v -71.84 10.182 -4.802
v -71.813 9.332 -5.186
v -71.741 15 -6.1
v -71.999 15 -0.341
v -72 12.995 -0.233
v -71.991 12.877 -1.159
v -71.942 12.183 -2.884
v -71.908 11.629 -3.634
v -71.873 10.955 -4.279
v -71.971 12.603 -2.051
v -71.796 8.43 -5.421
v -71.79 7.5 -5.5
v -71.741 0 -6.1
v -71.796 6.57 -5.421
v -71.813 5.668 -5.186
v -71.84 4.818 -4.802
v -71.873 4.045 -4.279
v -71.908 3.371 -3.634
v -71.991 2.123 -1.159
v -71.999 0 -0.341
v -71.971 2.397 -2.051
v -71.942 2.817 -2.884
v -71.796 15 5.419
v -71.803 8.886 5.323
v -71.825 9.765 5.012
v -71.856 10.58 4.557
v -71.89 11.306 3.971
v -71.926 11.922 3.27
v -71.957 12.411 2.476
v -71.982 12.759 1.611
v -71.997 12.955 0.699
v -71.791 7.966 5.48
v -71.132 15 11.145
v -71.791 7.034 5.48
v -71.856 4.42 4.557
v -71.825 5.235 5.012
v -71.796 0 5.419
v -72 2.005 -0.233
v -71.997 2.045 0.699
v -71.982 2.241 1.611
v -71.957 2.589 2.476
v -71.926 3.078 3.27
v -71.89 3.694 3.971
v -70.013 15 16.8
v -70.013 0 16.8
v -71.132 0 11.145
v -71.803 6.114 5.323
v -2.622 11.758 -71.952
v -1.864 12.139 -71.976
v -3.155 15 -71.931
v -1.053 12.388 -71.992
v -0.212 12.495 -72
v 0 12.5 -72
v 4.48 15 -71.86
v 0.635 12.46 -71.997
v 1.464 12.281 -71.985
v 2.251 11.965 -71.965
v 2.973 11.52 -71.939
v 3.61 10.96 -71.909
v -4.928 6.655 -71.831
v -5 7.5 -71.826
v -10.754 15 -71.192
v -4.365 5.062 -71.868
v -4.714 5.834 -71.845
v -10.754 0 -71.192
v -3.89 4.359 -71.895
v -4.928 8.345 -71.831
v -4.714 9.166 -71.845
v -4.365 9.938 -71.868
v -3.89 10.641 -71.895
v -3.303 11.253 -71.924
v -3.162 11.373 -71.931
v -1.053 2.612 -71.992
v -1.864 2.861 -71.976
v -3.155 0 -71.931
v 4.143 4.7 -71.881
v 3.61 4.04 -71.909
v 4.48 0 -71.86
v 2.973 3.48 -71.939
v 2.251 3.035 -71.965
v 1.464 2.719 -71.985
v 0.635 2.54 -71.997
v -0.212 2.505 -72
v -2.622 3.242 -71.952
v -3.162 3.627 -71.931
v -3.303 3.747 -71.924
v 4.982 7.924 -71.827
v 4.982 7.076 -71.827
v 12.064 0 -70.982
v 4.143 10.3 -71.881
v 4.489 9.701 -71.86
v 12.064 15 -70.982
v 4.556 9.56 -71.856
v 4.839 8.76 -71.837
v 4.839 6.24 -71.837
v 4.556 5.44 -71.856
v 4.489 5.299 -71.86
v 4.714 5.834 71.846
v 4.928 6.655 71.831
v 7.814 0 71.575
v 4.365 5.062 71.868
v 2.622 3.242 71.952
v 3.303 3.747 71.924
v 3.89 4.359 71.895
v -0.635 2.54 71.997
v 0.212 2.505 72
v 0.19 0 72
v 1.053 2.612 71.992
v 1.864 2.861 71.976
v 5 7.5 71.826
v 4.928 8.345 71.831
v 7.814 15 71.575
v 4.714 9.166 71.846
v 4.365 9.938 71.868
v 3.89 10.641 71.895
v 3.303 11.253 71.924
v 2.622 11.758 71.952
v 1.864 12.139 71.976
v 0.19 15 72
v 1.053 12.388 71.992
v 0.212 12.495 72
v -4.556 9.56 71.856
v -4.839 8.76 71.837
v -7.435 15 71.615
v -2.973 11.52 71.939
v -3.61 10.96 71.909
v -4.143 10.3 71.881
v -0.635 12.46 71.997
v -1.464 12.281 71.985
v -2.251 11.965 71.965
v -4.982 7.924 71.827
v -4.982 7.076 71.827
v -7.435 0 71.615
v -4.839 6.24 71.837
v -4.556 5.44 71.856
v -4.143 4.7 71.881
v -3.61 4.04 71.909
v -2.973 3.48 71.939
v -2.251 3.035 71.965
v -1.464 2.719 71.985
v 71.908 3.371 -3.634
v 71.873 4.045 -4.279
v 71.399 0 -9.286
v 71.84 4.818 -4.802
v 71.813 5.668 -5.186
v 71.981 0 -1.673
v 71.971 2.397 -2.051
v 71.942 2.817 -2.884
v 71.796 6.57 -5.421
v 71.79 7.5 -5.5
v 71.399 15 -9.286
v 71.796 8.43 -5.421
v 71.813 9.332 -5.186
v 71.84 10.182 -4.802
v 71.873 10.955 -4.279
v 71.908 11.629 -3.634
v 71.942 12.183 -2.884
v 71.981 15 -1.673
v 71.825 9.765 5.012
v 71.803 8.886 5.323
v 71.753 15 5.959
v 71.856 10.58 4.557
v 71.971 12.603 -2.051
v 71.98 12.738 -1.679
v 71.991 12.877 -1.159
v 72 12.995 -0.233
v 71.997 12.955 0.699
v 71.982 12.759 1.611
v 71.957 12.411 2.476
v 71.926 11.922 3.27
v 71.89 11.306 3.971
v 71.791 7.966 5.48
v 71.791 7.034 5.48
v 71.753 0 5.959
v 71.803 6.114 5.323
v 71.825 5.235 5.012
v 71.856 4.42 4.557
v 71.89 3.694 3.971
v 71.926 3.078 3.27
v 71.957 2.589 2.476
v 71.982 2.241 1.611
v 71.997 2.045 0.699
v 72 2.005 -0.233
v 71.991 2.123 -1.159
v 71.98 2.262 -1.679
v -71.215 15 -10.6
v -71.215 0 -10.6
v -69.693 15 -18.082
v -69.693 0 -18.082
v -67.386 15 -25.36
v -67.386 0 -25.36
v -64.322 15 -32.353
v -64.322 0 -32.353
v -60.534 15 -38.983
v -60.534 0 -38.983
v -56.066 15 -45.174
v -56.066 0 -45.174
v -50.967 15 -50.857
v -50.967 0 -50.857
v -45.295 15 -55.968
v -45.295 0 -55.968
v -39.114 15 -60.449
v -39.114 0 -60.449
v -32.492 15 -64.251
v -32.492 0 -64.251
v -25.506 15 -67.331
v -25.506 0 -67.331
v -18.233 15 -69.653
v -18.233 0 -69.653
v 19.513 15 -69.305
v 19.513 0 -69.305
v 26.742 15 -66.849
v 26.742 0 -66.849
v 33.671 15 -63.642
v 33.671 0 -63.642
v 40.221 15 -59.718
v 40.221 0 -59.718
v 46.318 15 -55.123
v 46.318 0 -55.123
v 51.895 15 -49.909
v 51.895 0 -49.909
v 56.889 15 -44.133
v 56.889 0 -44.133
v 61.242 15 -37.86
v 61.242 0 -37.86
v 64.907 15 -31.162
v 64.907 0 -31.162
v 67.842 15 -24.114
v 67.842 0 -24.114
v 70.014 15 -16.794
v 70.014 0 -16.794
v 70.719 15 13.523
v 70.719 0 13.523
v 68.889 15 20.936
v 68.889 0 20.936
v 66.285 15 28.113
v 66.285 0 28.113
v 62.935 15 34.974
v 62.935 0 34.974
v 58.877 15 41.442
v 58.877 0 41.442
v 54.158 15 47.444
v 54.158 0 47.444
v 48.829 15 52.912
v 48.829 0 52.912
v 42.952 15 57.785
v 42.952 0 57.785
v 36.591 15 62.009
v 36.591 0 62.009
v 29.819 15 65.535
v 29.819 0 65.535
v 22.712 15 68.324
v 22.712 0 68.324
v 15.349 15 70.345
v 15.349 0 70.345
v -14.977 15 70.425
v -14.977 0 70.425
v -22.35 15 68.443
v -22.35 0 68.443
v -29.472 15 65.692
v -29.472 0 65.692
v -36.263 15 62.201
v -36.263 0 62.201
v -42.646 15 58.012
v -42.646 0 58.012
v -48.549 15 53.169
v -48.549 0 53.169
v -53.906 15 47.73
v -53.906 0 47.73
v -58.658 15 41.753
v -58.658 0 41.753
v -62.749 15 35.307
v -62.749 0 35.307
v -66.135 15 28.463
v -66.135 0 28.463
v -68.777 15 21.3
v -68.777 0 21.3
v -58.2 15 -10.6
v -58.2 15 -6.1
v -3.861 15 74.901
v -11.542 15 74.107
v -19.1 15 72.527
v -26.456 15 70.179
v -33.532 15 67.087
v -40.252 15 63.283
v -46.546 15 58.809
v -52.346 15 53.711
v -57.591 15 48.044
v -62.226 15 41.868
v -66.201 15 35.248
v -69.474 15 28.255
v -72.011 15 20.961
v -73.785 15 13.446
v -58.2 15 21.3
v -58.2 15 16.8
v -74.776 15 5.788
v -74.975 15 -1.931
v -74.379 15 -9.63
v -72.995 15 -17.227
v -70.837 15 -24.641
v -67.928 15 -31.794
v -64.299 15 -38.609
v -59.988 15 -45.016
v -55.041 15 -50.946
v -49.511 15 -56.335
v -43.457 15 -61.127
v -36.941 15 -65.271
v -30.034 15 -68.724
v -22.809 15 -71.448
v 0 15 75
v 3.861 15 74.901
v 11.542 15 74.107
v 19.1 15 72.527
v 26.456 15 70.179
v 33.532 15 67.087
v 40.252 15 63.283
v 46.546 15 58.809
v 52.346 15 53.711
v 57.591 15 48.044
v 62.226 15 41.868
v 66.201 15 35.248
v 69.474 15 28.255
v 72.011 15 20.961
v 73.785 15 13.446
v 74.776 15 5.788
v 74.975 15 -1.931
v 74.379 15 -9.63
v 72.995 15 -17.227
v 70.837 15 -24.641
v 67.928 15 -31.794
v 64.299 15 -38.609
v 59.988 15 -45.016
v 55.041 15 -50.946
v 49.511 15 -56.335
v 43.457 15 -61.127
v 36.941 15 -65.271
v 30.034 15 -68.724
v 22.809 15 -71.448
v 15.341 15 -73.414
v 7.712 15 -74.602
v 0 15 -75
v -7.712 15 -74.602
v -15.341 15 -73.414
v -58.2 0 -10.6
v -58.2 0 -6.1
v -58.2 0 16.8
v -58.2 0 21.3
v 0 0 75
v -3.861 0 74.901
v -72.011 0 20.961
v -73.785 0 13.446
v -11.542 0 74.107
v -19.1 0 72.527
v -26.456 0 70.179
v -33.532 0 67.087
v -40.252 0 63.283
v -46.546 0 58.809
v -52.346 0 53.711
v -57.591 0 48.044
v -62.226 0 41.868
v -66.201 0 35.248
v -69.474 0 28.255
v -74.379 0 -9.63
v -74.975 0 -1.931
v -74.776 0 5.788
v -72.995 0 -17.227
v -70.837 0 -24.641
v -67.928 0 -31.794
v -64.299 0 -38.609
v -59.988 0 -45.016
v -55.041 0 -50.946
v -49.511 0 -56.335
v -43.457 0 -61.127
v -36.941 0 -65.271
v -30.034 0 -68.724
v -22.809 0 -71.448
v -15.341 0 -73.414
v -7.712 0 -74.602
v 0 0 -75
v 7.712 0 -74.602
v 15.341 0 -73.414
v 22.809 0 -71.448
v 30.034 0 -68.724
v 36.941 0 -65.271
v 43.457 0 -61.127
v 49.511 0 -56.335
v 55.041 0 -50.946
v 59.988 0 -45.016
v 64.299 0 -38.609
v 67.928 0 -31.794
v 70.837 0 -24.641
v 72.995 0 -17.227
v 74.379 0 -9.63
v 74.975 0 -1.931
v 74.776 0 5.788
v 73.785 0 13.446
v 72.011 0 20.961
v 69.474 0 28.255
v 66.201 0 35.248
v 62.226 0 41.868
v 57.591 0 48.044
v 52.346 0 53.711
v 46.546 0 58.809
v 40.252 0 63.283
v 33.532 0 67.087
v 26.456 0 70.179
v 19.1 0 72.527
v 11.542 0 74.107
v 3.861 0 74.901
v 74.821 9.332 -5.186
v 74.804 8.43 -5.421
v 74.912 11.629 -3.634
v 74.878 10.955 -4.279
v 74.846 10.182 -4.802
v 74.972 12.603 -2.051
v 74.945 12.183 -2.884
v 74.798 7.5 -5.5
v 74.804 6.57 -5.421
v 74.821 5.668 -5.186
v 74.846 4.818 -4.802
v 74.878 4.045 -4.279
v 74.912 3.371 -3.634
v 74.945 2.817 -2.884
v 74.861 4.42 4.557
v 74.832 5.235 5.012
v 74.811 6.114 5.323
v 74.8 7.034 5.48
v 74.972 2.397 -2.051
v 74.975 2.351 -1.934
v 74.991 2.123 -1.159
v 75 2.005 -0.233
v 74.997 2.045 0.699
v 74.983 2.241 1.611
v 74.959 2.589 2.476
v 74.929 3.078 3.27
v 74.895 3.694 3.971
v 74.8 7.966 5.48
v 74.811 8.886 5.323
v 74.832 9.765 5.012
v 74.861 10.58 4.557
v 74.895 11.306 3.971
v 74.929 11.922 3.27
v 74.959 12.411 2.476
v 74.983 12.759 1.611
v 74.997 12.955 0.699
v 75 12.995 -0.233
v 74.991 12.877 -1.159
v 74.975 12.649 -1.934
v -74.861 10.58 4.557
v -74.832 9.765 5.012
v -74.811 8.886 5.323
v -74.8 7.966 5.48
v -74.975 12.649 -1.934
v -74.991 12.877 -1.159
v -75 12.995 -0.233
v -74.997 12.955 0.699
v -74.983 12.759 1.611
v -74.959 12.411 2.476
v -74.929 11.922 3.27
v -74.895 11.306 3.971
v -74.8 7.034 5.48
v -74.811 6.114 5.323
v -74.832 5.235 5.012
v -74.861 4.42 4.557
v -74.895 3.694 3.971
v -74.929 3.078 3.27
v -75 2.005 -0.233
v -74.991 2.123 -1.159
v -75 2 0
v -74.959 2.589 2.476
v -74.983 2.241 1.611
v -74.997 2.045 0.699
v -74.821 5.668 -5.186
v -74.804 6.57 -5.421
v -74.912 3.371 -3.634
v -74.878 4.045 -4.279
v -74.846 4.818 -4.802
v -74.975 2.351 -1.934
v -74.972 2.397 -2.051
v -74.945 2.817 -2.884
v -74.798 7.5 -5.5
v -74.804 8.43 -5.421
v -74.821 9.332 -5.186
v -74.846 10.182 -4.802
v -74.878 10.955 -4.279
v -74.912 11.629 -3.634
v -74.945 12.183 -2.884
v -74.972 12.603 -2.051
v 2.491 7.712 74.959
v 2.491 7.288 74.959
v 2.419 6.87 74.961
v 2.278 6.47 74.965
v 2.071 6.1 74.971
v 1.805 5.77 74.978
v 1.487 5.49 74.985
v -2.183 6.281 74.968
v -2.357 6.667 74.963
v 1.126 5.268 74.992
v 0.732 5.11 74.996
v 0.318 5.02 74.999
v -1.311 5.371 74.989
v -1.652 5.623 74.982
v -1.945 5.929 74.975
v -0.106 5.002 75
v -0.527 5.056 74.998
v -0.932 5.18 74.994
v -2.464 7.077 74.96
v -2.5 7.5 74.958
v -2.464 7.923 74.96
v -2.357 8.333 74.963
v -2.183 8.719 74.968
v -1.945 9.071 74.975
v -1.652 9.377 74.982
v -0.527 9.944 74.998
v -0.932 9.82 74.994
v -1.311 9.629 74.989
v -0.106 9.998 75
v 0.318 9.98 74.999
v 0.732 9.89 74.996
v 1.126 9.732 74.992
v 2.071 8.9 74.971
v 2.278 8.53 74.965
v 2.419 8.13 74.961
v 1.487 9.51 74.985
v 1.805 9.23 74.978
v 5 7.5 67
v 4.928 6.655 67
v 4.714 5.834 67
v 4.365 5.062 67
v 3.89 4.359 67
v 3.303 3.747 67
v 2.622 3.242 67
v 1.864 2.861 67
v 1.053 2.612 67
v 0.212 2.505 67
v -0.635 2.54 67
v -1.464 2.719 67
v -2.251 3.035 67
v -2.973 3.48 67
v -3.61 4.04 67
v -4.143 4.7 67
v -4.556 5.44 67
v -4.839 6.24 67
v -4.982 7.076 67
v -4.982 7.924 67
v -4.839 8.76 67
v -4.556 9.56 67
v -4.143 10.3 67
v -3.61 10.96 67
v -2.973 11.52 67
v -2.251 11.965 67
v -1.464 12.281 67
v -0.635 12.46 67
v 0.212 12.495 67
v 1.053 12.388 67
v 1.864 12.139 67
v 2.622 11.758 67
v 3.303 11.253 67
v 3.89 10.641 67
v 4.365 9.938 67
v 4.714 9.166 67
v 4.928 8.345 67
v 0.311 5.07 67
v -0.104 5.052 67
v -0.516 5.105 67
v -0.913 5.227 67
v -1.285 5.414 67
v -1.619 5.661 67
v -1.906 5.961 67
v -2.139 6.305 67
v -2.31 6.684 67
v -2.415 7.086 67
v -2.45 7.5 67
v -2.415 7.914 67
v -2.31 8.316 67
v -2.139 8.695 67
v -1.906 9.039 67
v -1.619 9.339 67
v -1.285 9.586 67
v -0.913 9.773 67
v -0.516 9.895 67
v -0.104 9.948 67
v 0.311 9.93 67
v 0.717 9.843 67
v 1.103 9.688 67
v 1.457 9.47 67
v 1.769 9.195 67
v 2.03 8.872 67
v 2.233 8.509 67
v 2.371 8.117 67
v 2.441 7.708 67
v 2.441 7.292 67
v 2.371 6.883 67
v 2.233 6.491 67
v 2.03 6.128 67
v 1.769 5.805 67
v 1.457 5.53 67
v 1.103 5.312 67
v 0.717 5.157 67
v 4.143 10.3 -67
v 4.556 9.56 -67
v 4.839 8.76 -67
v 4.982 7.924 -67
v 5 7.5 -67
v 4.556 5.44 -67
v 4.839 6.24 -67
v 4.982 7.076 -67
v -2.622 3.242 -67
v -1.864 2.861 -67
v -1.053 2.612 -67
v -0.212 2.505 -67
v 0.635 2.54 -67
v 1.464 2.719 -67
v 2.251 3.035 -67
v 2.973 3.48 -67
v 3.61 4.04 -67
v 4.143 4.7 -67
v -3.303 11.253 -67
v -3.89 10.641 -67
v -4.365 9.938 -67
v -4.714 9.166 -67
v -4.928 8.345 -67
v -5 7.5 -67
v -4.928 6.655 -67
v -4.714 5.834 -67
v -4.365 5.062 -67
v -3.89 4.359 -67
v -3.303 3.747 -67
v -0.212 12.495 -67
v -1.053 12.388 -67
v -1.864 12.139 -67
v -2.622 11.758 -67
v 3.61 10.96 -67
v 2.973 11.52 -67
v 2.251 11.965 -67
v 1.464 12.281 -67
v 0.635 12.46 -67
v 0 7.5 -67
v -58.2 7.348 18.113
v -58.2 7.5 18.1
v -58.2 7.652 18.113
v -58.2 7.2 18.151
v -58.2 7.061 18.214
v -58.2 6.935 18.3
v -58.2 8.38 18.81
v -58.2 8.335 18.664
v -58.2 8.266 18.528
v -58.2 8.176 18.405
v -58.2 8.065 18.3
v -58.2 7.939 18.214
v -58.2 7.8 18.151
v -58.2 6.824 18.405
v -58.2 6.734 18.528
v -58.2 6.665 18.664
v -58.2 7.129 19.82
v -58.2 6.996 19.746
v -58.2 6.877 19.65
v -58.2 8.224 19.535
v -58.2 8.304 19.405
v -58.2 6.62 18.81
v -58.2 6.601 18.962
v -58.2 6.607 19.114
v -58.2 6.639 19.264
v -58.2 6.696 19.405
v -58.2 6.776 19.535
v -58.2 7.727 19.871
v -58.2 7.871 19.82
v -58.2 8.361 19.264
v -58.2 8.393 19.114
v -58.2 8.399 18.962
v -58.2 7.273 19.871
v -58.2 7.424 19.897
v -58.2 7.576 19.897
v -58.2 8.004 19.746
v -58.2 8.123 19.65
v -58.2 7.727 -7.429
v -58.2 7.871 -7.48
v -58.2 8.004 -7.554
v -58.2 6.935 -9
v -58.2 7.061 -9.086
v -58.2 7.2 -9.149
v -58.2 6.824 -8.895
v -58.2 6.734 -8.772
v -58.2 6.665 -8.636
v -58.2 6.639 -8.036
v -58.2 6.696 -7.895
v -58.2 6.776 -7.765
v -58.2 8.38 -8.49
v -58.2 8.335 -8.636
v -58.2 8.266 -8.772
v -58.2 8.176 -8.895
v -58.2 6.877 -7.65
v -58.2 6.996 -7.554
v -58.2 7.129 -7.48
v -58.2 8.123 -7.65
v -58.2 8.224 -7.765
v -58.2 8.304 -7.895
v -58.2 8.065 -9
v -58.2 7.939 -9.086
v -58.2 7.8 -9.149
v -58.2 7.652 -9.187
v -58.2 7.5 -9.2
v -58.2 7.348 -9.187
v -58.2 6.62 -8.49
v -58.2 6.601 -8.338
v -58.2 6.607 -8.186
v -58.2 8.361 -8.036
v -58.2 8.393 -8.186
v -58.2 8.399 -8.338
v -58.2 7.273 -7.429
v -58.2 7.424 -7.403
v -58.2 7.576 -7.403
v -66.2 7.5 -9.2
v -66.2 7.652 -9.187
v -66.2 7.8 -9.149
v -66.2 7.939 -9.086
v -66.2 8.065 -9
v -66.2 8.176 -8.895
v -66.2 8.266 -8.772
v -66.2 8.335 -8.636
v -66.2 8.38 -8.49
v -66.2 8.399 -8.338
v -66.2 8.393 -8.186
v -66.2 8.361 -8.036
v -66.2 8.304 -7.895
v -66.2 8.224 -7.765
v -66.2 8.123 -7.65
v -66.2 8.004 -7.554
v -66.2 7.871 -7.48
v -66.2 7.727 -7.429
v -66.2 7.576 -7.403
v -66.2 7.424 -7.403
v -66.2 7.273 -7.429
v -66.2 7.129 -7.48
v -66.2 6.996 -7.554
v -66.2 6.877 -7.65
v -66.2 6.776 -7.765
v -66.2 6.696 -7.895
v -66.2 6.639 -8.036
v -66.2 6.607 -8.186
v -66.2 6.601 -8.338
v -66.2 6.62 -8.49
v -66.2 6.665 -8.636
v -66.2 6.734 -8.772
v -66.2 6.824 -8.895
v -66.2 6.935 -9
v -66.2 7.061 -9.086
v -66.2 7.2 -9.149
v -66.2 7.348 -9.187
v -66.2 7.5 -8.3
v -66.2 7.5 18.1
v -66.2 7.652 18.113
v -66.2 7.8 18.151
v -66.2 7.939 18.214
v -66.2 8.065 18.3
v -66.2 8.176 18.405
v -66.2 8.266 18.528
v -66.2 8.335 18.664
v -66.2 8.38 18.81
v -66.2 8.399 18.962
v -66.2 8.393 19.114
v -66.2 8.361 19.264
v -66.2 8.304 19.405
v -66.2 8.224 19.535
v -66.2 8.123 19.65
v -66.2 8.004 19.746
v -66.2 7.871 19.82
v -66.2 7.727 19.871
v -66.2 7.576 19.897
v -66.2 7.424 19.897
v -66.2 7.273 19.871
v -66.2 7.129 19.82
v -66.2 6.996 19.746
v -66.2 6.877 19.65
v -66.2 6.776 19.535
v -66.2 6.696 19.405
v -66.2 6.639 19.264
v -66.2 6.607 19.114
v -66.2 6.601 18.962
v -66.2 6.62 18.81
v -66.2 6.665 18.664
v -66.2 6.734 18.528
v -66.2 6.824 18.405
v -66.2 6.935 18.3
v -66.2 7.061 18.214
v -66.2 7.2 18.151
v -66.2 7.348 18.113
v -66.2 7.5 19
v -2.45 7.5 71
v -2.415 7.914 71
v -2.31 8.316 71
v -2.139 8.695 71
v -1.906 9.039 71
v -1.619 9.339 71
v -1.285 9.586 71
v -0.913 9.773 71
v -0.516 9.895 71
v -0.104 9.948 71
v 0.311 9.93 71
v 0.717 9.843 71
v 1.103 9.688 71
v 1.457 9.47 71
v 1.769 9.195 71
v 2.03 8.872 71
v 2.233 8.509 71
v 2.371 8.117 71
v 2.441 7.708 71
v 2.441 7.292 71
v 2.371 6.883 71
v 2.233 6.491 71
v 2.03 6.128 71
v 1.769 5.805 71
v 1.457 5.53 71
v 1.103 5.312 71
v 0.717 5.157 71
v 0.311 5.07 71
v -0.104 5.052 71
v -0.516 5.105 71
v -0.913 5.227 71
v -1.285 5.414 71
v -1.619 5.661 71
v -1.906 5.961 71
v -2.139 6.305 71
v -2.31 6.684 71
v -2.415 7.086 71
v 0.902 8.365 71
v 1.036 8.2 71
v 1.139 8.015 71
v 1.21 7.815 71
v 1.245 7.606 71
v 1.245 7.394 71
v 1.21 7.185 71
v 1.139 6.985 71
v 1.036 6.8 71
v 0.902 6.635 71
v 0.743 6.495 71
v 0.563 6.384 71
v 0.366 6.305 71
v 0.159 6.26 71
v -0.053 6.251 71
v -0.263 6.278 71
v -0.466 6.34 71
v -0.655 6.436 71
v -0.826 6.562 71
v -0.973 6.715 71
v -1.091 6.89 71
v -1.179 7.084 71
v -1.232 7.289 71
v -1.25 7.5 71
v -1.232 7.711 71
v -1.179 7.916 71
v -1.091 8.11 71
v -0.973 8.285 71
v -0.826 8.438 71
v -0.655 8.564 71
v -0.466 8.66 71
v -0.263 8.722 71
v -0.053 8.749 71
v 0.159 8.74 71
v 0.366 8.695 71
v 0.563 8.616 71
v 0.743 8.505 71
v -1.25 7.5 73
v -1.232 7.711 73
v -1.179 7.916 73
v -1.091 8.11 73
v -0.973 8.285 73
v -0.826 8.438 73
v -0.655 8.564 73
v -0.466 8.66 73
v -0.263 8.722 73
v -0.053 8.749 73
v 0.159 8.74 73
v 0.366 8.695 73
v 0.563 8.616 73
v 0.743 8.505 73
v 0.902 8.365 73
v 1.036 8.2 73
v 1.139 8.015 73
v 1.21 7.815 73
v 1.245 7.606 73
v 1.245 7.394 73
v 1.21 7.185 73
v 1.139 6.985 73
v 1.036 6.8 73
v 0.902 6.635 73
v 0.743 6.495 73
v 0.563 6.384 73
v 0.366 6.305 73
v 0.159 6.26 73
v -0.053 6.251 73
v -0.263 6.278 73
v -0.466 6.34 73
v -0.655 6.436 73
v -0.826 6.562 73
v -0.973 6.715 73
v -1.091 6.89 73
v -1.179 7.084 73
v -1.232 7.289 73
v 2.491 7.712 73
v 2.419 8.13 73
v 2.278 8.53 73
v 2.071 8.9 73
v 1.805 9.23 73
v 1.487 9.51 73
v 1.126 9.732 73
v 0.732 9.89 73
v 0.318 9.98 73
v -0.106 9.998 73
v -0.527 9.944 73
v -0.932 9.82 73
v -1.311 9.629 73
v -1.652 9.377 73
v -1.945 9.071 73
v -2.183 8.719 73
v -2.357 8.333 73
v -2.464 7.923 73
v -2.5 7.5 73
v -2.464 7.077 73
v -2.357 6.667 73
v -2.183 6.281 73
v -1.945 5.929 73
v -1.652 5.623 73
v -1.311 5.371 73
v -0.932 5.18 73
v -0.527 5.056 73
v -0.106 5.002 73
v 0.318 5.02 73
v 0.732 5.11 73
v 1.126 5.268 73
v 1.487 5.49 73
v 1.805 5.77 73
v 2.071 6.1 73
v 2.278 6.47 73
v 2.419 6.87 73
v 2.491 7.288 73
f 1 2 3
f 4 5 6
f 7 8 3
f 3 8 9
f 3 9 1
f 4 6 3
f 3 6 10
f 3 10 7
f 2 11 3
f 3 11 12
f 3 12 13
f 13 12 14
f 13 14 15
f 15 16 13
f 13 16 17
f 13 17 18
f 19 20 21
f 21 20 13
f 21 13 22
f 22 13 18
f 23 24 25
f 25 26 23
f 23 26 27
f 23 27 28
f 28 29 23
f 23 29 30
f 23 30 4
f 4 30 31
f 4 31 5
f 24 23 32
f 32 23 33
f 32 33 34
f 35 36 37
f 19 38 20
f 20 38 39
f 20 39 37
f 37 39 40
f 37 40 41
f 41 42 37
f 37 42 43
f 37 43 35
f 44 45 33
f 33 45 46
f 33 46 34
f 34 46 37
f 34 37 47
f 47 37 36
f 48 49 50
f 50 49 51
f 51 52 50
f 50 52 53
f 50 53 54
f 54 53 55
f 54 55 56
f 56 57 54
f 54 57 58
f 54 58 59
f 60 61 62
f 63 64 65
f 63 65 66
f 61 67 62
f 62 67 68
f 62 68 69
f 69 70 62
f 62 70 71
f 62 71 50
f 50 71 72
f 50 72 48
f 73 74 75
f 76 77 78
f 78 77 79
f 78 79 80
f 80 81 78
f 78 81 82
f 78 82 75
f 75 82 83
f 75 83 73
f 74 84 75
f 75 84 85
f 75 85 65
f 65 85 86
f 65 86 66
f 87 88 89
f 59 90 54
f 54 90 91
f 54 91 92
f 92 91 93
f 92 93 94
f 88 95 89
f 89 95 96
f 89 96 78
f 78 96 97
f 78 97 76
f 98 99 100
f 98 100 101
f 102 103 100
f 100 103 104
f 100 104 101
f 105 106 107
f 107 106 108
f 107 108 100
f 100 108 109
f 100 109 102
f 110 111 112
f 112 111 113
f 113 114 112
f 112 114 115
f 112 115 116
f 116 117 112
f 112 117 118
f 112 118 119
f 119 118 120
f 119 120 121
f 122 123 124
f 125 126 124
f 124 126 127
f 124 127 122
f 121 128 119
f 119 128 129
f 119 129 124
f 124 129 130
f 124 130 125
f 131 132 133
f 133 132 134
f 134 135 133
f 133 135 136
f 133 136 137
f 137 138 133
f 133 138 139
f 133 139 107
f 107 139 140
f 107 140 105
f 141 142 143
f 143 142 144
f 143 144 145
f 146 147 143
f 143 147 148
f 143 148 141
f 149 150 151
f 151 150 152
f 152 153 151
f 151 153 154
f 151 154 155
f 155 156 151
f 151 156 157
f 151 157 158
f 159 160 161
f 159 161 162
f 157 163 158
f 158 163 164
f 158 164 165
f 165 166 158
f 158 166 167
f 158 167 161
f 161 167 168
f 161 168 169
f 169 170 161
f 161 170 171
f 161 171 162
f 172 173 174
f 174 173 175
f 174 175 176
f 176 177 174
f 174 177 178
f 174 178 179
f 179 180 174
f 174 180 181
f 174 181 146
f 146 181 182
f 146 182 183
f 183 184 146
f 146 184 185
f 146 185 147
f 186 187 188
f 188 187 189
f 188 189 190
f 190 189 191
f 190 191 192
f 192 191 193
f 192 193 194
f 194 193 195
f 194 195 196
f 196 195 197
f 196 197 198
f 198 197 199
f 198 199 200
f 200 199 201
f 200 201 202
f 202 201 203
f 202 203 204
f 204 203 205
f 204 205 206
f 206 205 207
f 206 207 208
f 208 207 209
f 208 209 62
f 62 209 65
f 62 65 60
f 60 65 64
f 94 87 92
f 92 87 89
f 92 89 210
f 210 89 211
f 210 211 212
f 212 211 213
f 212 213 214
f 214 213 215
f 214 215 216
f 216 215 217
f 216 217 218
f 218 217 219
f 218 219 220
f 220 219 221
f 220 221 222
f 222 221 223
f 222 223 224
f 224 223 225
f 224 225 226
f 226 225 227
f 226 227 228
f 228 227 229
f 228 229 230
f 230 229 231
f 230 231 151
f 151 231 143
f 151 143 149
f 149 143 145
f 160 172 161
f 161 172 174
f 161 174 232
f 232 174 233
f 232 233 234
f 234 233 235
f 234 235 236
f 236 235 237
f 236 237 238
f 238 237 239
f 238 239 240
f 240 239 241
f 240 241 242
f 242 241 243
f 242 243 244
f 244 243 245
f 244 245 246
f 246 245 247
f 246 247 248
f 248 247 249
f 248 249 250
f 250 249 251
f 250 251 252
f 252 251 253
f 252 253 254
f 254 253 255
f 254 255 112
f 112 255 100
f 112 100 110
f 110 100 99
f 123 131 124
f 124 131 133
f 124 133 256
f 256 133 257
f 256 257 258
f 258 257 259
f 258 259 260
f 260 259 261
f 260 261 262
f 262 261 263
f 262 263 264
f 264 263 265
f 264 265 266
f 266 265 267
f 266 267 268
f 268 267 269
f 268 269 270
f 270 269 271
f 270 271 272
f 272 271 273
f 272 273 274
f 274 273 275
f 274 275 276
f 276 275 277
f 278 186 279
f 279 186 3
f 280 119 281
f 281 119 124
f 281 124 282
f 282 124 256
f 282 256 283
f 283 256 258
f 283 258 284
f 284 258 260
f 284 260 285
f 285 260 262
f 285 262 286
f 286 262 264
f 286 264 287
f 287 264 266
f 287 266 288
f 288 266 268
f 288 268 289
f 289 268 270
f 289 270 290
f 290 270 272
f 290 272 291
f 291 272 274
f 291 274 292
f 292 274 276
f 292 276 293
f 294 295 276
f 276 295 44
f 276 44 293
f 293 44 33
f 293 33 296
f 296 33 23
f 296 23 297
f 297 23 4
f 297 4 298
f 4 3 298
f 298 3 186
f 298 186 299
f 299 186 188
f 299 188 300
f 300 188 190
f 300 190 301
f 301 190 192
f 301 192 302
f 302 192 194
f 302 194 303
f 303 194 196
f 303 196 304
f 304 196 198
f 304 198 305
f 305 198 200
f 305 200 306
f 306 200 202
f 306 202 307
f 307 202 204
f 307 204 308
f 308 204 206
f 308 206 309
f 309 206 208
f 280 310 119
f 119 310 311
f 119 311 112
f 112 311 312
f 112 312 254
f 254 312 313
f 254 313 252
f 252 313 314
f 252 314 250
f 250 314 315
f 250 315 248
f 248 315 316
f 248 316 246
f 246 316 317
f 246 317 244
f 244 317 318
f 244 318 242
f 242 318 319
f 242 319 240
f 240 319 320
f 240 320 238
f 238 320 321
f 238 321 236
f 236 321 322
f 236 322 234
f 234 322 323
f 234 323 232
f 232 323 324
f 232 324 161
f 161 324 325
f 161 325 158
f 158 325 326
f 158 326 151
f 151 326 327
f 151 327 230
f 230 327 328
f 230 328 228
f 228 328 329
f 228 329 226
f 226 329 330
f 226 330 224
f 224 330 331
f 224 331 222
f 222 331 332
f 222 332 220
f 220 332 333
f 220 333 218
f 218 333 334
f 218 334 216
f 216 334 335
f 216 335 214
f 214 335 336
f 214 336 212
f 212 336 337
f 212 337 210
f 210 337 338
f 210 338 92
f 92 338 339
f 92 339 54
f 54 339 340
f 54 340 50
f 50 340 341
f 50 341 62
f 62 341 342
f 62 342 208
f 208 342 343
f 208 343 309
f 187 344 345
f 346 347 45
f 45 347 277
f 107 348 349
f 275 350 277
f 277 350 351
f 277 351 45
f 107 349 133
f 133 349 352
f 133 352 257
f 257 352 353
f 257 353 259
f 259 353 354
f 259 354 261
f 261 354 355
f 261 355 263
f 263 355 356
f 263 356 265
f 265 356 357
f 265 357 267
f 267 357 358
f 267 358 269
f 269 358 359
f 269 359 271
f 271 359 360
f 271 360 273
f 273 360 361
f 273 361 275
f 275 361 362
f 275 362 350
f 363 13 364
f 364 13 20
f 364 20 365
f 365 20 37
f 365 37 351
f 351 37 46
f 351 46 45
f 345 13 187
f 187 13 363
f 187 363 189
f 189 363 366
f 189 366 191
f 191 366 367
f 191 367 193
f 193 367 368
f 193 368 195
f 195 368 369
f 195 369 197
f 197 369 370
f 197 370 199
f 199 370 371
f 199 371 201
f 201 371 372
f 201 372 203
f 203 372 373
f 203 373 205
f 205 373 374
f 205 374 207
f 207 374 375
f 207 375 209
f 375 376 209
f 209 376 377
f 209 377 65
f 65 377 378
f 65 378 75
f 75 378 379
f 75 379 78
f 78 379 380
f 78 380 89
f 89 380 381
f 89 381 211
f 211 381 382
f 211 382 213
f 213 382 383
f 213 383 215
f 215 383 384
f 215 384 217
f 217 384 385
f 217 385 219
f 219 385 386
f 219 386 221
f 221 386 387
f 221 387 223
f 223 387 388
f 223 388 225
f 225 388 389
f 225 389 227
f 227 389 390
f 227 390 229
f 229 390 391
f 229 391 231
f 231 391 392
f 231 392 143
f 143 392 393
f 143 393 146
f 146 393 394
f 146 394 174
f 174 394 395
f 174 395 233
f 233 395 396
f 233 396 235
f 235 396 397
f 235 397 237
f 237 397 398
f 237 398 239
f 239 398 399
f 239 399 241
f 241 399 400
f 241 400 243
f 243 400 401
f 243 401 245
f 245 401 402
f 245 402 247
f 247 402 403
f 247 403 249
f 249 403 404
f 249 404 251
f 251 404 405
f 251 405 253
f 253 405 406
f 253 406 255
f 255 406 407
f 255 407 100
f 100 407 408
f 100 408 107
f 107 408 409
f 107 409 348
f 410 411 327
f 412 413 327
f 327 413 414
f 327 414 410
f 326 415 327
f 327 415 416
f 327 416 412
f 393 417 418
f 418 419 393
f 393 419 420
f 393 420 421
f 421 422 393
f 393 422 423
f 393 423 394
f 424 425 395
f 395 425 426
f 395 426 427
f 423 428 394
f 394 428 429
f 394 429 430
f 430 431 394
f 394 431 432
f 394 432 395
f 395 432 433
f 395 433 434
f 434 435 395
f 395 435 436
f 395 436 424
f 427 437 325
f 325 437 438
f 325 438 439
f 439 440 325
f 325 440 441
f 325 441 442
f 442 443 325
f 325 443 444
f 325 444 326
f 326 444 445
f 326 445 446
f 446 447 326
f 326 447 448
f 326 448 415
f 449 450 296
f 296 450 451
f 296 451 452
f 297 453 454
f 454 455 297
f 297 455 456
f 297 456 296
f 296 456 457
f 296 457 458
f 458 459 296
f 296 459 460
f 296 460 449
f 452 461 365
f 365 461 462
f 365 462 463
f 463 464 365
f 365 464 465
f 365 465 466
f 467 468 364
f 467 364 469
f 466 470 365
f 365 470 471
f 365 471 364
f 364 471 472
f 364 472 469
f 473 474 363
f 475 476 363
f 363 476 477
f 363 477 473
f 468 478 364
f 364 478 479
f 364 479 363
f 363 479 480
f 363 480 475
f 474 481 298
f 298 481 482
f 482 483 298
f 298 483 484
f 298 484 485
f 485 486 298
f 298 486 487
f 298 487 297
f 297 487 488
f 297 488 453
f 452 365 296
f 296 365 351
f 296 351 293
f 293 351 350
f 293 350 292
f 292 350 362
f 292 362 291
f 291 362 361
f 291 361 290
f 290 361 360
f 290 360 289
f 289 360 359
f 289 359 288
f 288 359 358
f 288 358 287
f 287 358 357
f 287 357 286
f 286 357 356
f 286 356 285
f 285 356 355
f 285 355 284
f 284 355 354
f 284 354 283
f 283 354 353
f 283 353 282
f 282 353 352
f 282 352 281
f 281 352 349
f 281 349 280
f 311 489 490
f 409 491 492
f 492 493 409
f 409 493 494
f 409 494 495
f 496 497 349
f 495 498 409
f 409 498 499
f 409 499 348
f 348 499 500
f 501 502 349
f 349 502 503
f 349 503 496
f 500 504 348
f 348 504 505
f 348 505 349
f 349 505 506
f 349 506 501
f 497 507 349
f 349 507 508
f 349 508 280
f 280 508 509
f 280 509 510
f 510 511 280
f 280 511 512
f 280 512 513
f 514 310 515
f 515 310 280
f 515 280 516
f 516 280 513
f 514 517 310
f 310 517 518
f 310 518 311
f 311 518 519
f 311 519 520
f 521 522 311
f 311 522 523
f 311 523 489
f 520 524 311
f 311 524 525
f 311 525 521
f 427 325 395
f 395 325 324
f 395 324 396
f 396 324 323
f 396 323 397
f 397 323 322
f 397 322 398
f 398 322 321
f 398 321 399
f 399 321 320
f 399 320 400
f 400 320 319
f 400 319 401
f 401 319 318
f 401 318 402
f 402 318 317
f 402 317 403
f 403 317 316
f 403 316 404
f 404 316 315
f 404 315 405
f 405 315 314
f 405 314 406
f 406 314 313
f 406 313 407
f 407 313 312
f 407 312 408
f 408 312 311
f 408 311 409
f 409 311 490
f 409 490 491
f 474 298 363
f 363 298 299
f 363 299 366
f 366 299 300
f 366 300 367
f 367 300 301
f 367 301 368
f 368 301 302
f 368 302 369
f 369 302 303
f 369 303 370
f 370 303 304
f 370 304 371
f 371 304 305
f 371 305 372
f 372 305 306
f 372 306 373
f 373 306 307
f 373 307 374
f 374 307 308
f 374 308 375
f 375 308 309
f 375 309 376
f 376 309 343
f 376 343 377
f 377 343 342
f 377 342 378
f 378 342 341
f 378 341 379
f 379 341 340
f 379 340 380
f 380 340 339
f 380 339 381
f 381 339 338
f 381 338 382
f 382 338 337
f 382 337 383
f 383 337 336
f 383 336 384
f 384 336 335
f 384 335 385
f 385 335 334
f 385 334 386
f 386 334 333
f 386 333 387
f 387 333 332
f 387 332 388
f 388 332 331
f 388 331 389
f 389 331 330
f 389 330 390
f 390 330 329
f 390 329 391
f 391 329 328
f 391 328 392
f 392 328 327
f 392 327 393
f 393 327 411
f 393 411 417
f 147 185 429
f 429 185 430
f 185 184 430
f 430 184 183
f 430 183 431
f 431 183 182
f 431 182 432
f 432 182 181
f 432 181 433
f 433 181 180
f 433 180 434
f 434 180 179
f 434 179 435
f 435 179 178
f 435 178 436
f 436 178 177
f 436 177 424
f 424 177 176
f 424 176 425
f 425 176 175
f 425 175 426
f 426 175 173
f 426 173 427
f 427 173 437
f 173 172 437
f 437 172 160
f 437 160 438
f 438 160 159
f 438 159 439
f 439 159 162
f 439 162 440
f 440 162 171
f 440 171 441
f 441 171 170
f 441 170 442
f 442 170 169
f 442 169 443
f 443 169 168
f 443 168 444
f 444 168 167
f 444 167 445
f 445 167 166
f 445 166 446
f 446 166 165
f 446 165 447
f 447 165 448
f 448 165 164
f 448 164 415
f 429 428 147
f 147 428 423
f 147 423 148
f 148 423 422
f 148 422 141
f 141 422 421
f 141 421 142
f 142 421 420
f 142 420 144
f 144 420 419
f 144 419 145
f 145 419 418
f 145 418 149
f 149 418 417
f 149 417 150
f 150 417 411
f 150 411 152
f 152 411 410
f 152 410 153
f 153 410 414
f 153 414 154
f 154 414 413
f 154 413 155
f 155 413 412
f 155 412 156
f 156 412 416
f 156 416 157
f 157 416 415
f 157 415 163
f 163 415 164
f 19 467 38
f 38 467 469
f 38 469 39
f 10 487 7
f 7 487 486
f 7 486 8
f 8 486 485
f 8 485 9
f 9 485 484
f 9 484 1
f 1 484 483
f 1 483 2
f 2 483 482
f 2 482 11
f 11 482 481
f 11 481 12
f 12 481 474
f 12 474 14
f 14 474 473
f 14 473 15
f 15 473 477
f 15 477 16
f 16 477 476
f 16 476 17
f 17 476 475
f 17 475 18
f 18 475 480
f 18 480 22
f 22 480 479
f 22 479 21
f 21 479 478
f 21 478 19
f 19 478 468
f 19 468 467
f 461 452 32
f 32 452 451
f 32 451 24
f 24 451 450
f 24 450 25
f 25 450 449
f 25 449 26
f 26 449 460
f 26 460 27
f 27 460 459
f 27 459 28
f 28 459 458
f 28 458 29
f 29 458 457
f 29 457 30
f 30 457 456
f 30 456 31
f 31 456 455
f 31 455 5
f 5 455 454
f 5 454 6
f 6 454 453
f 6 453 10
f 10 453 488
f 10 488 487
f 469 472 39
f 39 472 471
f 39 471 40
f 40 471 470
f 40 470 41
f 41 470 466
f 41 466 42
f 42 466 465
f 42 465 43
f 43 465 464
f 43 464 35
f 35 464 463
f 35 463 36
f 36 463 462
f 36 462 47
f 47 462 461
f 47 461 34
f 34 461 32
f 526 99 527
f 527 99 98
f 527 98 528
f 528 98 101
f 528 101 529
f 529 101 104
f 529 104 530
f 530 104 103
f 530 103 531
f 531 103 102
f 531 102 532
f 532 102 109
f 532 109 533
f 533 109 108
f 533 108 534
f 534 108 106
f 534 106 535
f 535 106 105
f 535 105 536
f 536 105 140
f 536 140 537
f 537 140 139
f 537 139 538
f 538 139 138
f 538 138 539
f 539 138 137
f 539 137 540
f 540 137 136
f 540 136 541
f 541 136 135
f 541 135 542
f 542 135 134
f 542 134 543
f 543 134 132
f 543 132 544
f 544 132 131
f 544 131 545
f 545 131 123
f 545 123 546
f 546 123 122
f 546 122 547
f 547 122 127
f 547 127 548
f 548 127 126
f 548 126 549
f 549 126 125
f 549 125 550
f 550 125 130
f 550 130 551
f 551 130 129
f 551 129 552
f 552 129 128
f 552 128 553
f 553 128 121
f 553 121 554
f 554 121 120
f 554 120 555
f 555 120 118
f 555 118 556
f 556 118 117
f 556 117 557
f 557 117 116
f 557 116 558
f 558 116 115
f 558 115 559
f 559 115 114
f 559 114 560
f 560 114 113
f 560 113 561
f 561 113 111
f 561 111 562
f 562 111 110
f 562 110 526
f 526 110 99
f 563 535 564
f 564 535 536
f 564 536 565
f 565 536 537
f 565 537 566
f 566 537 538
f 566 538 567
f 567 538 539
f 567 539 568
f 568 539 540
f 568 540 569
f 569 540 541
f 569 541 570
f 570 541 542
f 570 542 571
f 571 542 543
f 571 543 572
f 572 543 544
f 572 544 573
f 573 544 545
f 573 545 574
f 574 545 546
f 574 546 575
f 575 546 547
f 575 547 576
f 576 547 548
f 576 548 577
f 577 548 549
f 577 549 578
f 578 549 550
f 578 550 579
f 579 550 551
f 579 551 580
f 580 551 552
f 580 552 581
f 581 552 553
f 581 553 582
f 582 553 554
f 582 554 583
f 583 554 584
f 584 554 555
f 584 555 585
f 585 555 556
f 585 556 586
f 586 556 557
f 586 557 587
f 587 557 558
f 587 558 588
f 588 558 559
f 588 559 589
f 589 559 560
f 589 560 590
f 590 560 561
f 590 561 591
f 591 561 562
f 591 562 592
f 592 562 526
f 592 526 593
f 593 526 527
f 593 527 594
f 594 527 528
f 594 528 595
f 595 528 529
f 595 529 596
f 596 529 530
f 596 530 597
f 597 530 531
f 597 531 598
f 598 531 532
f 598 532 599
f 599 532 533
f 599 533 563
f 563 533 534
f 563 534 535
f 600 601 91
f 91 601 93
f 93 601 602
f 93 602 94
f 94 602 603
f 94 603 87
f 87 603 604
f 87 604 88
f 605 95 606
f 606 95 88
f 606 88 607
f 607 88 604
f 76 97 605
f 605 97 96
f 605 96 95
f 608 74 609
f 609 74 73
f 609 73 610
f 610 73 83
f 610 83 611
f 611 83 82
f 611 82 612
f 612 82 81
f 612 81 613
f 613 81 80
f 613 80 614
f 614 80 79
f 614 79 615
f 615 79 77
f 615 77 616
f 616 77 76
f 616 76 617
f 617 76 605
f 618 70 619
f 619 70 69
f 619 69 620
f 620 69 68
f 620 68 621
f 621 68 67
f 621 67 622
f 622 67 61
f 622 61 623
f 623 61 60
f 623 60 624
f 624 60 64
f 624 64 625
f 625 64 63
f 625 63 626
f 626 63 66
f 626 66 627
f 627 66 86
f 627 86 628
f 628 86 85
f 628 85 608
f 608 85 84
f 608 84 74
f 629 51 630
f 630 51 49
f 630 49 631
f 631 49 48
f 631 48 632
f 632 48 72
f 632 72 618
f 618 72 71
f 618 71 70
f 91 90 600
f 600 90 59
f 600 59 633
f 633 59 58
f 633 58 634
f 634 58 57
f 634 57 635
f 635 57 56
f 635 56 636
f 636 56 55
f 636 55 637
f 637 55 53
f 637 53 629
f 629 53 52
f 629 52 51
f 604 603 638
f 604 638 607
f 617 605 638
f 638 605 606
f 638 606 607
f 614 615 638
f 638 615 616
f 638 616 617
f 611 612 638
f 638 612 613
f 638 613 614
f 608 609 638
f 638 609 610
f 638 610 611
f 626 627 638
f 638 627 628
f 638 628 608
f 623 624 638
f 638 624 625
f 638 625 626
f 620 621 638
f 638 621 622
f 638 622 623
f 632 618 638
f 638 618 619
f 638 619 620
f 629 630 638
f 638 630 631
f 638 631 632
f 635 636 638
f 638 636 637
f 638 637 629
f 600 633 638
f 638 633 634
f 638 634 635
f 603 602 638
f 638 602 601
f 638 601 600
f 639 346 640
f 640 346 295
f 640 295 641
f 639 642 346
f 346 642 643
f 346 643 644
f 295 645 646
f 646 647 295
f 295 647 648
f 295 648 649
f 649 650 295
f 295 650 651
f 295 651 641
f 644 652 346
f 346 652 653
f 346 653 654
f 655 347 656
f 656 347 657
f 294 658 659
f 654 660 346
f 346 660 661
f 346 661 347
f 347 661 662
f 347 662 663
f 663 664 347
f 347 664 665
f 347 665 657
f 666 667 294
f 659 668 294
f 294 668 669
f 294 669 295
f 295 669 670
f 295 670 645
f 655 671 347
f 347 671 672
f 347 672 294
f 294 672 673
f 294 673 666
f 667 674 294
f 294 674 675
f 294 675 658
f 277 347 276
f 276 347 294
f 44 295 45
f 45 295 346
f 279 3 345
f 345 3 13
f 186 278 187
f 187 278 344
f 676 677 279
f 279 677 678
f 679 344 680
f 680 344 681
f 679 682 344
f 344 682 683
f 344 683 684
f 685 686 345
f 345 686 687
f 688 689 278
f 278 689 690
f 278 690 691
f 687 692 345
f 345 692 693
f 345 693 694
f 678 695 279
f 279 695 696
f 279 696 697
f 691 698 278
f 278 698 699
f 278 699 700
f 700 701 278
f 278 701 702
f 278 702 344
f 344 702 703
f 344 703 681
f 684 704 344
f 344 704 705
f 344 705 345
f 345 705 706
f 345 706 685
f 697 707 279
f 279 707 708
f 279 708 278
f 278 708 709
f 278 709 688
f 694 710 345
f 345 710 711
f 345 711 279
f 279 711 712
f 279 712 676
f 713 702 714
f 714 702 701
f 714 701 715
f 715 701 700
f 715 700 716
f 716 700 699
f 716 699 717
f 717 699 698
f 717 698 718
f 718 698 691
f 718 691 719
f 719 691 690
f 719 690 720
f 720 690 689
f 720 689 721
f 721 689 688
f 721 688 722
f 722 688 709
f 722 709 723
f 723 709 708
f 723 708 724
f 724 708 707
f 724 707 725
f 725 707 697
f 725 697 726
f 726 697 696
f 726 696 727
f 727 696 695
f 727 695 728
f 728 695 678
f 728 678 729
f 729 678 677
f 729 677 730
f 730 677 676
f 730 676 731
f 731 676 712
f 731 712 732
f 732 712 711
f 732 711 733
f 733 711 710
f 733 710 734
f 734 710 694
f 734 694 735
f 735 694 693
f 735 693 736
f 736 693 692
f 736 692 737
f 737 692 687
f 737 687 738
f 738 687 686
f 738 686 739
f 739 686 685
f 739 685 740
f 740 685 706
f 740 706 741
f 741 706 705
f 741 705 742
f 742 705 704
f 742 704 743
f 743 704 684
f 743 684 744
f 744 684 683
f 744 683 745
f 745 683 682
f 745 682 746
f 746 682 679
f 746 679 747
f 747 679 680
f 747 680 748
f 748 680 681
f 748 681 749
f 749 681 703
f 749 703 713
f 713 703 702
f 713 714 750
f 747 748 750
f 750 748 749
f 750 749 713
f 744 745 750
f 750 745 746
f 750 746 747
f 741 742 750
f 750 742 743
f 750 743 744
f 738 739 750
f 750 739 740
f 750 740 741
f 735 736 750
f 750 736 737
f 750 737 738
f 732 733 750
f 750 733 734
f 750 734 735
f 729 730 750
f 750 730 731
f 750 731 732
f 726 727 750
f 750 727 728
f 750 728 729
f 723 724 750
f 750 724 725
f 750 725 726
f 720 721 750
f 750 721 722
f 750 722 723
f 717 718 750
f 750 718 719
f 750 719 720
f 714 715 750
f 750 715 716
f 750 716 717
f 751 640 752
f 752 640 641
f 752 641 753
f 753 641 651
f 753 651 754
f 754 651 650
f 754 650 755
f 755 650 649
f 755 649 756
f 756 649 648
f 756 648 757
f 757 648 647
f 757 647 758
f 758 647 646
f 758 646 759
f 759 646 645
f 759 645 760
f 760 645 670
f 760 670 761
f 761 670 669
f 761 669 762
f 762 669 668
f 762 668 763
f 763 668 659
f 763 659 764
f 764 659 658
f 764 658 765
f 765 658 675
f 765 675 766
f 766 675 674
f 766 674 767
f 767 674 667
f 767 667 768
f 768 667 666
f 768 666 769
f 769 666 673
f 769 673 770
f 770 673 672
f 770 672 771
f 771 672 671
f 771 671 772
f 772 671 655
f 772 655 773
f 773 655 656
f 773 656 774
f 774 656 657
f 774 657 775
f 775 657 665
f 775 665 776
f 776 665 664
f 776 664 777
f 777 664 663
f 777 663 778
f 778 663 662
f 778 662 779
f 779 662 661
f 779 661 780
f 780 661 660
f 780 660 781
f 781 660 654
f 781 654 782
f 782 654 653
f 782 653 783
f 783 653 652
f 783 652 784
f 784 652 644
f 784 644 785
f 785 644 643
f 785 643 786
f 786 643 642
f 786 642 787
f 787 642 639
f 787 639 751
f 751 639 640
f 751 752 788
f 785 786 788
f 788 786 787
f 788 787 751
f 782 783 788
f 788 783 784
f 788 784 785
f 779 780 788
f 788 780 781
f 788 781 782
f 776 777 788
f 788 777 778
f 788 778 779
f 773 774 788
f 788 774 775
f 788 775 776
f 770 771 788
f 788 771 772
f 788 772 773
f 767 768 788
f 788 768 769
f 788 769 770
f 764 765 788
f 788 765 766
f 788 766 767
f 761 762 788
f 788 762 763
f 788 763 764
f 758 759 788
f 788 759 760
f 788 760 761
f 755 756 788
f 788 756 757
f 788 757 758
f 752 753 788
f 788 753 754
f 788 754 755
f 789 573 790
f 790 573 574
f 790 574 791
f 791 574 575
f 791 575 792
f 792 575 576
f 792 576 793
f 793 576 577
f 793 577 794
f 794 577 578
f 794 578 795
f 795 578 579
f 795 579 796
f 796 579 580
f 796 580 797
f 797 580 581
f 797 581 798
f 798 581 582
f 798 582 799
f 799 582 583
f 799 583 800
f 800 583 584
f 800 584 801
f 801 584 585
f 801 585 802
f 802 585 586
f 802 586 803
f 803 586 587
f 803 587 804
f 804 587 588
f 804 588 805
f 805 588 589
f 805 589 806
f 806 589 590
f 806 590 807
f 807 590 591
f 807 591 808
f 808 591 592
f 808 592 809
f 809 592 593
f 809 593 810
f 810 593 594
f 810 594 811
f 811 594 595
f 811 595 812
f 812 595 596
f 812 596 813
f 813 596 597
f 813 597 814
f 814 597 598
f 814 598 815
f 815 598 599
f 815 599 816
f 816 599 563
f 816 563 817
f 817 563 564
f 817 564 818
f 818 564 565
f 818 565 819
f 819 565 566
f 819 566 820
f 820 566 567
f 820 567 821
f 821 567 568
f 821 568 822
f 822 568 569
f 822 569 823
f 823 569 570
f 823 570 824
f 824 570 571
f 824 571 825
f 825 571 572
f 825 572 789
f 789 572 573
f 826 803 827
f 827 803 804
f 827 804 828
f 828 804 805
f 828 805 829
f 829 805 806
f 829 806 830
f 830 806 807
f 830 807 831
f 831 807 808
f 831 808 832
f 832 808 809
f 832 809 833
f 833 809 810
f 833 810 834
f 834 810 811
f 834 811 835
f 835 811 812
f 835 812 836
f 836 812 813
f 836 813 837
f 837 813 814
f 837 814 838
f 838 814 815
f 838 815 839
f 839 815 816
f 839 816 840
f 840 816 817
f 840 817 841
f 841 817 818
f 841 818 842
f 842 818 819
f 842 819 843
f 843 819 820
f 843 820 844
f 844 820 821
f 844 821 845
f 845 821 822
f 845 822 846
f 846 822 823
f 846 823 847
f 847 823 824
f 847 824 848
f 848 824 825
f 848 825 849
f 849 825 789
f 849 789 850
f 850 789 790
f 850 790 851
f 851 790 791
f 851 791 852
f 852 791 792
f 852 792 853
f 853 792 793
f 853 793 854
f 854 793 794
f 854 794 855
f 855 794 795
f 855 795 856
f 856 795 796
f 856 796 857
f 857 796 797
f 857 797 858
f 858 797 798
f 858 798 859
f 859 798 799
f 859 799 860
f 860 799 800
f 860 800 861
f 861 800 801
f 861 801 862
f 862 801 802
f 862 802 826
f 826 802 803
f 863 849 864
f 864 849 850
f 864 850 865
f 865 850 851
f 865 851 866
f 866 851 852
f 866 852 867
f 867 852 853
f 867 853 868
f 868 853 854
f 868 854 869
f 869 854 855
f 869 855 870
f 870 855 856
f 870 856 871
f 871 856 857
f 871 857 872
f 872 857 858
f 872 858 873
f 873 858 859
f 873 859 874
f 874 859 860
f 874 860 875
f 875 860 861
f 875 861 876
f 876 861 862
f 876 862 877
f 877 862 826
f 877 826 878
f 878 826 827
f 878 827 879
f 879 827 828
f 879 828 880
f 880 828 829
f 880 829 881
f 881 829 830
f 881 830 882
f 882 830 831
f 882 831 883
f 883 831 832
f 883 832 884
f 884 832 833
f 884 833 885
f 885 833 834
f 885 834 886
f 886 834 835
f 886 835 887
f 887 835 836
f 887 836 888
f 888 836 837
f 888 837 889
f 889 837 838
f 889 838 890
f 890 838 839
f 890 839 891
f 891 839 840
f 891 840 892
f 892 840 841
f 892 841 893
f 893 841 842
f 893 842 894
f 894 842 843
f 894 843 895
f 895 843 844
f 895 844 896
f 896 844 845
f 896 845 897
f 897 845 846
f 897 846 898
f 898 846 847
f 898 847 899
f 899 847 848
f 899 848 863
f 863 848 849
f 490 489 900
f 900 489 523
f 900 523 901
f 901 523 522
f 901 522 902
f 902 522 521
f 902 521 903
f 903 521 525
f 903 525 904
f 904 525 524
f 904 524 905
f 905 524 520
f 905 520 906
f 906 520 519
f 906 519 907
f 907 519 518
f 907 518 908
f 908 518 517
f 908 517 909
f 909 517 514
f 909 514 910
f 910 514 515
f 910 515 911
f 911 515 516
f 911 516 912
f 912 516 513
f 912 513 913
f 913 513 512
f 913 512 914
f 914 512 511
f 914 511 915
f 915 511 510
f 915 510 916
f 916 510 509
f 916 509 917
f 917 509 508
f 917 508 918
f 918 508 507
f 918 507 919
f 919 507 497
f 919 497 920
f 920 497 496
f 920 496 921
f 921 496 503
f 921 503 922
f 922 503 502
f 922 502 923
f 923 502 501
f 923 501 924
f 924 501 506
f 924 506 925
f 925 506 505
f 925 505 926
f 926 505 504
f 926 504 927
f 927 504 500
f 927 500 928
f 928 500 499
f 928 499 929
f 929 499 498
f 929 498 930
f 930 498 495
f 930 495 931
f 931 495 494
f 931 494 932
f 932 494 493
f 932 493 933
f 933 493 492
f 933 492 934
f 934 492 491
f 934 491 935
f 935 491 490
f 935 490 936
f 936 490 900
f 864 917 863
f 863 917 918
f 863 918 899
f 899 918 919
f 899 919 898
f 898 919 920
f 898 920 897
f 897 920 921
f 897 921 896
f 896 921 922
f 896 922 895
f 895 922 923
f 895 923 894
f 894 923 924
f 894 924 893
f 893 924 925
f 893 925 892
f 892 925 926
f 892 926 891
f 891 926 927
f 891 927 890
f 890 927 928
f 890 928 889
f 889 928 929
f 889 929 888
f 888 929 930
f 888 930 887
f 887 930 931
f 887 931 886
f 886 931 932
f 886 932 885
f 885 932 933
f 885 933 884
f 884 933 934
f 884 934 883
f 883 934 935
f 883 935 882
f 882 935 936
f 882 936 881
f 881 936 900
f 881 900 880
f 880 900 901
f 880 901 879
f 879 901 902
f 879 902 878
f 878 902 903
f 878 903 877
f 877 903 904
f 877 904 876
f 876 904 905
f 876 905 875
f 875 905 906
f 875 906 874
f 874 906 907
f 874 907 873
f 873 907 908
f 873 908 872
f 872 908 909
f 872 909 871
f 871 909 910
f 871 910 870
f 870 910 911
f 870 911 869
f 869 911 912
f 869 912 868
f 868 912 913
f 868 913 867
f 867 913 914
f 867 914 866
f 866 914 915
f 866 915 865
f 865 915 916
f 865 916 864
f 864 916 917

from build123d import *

# Parameters (mm, degrees)
SKETCH1_R               = 75
SKETCH1_R_2             = 72
BOSS_EXTRUDE1_DEPTH     = 15
SKETCH2_R               = 5.5
CUT_EXTRUDE1_DEPTH      = 76
CUT_EXTRUDE1_DEPTH_BACK = 76
BOSS_EXTRUDE2_START     = -6
SKETCH3_R               = 5
BOSS_EXTRUDE2_DEPTH     = 7
SKETCH4_W               = 11.8125703
SKETCH4_H               = 4.5
SKETCH4_W_2             = 13.541131856
BOSS_EXTRUDE3_DEPTH     = 15
SKETCH5_R               = 0.9
CUT_EXTRUDE2_DEPTH      = 8
SKETCH6_R               = 2.45
CUT_EXTRUDE3_DEPTH      = 4
SKETCH7_R               = 1.25
CUT_EXTRUDE4_DEPTH      = 4
SKETCH8_R               = 2.5
CUT_EXTRUDE5_DEPTH      = 4


with BuildPart() as part:
    # Sketch1 → Boss-Extrude1 (new body)
    with BuildSketch(Plane(origin=(0, 0, 0), x_dir=(1, 0, 0), z_dir=(0, 1, 0))):
        Circle(SKETCH1_R)
        Circle(SKETCH1_R_2, mode=Mode.SUBTRACT)
    extrude(amount=BOSS_EXTRUDE1_DEPTH)

    # Sketch2 → Cut-Extrude1 (cut, two sides)
    with BuildSketch(Plane(origin=(0, 0, 0), x_dir=(0, 0, -1), z_dir=(1, 0, 0))) as cut_extrude1_sk:
        with Locations((0, 7.5)):
            Circle(SKETCH2_R)
    extrude(amount=CUT_EXTRUDE1_DEPTH, mode=Mode.SUBTRACT)
    extrude(cut_extrude1_sk.sketch, amount=-CUT_EXTRUDE1_DEPTH_BACK, mode=Mode.SUBTRACT)

    # Sketch3 → Boss-Extrude2 (add)
    with BuildSketch(Plane.XY.offset(73).offset(BOSS_EXTRUDE2_START)):
        with Locations((0, 7.5)):
            Circle(SKETCH3_R)
    boss_extrude2 = extrude(amount=BOSS_EXTRUDE2_DEPTH)

    # Mirror1: Boss-Extrude2 across plane
    add(boss_extrude2.mirror(Plane.XY))

    # Sketch4 → Boss-Extrude3 (add)
    with BuildSketch(Plane(origin=(0, 15, 0), x_dir=(1, 0, 0), z_dir=(0, 1, 0))):
        with Locations((-64.10628515, -19.05)):
            Rectangle(SKETCH4_W, SKETCH4_H)
        with Locations((-64.970565928, 8.35)):
            Rectangle(SKETCH4_W_2, SKETCH4_H)
    extrude(amount=-BOSS_EXTRUDE3_DEPTH)

    # Sketch5 → Cut-Extrude2 (cut)
    with BuildSketch(Plane(origin=(-58.2, 0, 0), x_dir=(0, 0, -1), z_dir=(1, 0, 0))):
        with Locations((8.3, 7.5)):
            Circle(SKETCH5_R)
        with Locations((-19, 7.5)):
            Circle(SKETCH5_R)
    extrude(amount=-CUT_EXTRUDE2_DEPTH, mode=Mode.SUBTRACT)

    # Sketch6 → Cut-Extrude3 (cut)
    with BuildSketch(Plane(origin=(0, 0, 67), x_dir=(-1, 0, 0), z_dir=(0, 0, -1))):
        with Locations((0, 7.5)):
            Circle(SKETCH6_R)
    extrude(amount=-CUT_EXTRUDE3_DEPTH, mode=Mode.SUBTRACT)

    # Sketch7 → Cut-Extrude4 (cut)
    with BuildSketch(Plane(origin=(0, 0, 71), x_dir=(-1, 0, 0), z_dir=(0, 0, -1))):
        with Locations((0, 7.5)):
            Circle(SKETCH7_R)
    extrude(amount=-CUT_EXTRUDE4_DEPTH, mode=Mode.SUBTRACT)

    # Sketch8 → Cut-Extrude5 (cut)
    with BuildSketch(Plane(origin=(0, 0, 73), x_dir=(-1, 0, 0), z_dir=(0, 0, -1))):
        with Locations((0, 7.5)):
            Circle(SKETCH8_R)
    extrude(amount=-CUT_EXTRUDE5_DEPTH, mode=Mode.SUBTRACT)


solid = part.part
